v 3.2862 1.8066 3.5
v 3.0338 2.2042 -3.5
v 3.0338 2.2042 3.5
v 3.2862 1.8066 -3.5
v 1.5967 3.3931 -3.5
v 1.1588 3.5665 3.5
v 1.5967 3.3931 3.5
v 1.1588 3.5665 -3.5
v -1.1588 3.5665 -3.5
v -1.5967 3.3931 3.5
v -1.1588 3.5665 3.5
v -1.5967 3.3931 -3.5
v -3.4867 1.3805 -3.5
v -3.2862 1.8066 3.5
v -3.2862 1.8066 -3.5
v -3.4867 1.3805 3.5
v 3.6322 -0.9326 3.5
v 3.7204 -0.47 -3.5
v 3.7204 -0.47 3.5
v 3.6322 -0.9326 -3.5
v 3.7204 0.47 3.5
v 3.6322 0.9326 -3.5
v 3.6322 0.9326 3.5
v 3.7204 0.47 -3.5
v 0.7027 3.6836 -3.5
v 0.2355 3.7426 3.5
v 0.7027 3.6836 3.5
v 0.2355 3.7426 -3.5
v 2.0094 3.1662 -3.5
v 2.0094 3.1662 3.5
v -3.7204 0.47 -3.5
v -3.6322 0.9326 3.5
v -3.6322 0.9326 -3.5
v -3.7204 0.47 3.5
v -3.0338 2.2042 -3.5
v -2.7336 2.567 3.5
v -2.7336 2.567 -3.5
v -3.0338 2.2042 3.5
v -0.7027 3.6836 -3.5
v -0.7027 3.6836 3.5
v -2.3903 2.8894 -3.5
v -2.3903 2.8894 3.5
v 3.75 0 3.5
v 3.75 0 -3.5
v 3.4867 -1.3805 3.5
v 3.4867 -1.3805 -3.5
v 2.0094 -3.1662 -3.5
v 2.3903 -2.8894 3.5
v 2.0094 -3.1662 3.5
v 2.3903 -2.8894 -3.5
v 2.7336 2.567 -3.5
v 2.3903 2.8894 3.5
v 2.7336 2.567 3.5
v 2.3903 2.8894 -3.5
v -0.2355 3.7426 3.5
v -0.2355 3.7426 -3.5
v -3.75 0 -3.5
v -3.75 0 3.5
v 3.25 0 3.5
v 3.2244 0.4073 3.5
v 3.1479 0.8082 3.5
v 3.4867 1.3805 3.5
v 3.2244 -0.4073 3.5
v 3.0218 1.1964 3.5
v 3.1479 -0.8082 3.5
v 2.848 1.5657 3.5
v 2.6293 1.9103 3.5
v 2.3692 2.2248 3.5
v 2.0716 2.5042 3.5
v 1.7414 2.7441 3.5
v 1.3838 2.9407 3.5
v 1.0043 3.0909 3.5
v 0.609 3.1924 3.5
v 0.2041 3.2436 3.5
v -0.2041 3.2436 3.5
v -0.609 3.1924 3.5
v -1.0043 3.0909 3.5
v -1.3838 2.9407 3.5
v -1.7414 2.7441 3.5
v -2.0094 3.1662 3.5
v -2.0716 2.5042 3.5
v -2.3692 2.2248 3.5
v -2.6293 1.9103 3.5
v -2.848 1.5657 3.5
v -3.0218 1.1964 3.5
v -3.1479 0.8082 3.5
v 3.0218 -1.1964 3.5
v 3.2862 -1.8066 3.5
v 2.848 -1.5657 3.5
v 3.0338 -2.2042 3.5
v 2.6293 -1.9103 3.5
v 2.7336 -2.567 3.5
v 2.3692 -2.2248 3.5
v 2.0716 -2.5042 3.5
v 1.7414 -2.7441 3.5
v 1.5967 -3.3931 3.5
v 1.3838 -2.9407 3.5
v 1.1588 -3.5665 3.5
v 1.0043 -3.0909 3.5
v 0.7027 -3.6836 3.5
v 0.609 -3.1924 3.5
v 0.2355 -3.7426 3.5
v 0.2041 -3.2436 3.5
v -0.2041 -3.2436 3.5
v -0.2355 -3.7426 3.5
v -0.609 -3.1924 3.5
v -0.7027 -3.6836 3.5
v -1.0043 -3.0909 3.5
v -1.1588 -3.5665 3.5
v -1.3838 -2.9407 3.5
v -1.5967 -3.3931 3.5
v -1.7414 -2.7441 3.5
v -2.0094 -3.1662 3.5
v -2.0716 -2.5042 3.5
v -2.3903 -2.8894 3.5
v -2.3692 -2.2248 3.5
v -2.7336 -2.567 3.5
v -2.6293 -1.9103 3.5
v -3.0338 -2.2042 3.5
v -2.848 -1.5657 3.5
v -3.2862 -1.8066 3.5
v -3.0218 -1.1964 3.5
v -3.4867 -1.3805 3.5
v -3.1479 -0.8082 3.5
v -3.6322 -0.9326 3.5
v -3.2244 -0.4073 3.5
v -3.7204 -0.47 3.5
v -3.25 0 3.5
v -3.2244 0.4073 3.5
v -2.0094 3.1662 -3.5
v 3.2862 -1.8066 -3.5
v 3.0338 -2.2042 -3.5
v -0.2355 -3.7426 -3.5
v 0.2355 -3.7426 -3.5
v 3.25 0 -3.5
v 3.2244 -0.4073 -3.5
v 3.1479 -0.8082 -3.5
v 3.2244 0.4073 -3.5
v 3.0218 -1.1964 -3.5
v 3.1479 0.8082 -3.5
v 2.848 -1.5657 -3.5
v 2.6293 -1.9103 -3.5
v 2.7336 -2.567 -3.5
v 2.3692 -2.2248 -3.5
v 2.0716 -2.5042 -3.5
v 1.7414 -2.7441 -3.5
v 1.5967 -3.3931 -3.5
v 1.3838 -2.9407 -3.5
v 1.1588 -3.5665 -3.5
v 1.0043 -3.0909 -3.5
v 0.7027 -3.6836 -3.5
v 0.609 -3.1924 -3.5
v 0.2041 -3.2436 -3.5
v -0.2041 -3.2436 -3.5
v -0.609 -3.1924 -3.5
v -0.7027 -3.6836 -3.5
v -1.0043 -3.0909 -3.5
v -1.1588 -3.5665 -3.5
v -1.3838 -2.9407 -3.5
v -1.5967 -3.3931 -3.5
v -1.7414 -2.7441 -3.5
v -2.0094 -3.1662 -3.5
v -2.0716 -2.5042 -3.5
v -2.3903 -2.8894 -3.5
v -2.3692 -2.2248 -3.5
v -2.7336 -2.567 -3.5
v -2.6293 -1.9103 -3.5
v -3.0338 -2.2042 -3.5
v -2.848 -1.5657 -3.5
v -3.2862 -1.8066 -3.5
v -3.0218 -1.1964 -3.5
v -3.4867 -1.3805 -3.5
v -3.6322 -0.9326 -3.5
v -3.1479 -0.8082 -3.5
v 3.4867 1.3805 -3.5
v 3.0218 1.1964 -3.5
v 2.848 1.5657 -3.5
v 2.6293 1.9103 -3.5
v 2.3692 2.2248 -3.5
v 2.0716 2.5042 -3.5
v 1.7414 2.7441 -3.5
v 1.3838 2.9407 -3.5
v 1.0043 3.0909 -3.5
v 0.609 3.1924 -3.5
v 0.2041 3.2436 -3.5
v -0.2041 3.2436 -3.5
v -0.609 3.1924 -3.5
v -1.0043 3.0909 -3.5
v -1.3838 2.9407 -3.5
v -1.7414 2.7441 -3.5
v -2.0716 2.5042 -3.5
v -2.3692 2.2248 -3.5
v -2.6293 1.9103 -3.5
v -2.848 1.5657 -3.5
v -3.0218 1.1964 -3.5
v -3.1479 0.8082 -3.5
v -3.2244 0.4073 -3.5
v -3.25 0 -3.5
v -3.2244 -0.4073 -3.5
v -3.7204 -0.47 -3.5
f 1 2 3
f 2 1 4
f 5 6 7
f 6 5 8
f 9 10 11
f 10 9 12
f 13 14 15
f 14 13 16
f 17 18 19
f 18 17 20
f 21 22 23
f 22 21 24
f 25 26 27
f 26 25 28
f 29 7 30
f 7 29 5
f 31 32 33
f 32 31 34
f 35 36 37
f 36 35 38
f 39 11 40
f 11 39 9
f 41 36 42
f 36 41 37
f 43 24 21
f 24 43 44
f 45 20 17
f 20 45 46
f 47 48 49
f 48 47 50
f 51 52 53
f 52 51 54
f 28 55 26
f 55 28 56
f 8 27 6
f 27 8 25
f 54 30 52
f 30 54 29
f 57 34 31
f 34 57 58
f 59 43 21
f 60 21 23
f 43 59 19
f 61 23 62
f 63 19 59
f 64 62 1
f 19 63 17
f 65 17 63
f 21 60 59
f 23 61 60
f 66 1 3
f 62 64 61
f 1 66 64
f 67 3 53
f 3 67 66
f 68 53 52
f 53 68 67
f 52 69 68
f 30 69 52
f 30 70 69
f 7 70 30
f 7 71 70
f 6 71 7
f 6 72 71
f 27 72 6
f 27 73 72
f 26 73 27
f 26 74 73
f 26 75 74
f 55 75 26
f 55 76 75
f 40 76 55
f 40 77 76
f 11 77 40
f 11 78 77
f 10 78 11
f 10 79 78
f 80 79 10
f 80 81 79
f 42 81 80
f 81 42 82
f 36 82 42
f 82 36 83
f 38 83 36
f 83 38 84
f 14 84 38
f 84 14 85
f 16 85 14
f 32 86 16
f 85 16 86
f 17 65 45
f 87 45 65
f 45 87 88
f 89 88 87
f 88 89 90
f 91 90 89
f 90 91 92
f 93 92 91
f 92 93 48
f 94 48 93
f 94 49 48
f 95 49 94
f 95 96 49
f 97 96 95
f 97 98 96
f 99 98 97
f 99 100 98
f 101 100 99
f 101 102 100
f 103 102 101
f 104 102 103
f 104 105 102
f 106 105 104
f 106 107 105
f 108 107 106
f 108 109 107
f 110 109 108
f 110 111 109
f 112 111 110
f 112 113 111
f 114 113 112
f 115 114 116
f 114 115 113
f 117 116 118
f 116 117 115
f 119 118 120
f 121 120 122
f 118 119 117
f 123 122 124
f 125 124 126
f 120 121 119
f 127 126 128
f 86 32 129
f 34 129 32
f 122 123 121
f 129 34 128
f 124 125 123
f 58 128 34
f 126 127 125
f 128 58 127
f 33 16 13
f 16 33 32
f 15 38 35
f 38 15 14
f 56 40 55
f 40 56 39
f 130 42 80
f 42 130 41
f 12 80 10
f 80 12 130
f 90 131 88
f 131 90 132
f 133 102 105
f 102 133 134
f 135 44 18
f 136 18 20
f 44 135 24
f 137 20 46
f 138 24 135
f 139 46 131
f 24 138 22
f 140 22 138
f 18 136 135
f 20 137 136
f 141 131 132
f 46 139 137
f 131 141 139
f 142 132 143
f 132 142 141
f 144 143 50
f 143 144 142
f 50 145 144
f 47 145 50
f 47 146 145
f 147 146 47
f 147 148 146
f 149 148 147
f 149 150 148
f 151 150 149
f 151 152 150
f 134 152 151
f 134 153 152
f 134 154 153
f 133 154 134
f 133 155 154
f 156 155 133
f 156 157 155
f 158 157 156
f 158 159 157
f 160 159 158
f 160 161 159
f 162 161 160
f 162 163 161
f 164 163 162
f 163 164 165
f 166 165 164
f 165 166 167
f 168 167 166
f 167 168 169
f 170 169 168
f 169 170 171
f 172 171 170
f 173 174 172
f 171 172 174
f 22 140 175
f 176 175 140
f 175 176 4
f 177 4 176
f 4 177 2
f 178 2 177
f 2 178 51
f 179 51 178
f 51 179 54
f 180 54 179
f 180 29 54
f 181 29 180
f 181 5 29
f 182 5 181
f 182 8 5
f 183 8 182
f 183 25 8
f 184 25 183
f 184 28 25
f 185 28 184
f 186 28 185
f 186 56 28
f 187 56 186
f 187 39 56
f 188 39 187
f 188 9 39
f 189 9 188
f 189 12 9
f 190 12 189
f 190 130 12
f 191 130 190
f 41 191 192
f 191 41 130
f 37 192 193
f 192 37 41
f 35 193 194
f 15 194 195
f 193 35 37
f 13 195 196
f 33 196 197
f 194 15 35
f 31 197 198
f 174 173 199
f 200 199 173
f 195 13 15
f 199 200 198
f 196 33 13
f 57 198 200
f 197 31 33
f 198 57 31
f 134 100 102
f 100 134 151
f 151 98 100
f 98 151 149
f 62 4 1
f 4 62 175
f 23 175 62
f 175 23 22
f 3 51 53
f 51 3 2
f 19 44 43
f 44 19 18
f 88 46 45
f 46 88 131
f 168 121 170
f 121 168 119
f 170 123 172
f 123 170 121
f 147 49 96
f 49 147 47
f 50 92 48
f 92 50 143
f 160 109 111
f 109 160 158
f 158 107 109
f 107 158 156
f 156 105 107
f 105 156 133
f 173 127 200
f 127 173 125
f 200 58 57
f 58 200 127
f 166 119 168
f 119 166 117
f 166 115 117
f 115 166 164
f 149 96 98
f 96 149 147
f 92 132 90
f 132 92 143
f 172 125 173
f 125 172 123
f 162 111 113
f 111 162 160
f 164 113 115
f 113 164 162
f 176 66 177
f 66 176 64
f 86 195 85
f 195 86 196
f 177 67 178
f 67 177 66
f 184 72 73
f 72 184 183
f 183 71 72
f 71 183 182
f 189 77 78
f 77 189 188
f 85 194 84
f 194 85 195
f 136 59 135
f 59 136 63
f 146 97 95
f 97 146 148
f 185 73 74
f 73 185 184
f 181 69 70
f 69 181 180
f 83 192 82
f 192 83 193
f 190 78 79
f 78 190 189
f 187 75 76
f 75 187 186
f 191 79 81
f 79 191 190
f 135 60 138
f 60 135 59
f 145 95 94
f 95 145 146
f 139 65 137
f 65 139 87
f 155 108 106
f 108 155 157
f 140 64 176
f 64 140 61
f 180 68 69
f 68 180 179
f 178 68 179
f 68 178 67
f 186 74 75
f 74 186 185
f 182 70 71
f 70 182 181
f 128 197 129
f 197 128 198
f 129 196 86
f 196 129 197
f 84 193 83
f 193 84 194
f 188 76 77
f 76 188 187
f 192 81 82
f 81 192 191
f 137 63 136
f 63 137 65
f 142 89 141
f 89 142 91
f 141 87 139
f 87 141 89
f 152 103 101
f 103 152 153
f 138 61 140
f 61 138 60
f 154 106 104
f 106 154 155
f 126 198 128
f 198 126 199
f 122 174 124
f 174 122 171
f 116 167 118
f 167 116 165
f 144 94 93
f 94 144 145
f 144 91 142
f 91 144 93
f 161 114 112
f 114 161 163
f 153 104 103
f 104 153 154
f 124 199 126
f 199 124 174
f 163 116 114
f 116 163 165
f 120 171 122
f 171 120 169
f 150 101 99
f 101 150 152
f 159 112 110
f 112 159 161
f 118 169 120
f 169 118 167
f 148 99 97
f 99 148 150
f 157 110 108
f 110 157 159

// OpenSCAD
$fn = 50;


difference() {
	union() {
		translate(v = [0, 0, -3.5000000000]) {
			cylinder(h = 7, r = 3.7500000000);
		}
	}
	union() {
		translate(v = [0, 0, -100.0000000000]) {
			cylinder(h = 200, r = 3.2500000000);
		}
	}
}
